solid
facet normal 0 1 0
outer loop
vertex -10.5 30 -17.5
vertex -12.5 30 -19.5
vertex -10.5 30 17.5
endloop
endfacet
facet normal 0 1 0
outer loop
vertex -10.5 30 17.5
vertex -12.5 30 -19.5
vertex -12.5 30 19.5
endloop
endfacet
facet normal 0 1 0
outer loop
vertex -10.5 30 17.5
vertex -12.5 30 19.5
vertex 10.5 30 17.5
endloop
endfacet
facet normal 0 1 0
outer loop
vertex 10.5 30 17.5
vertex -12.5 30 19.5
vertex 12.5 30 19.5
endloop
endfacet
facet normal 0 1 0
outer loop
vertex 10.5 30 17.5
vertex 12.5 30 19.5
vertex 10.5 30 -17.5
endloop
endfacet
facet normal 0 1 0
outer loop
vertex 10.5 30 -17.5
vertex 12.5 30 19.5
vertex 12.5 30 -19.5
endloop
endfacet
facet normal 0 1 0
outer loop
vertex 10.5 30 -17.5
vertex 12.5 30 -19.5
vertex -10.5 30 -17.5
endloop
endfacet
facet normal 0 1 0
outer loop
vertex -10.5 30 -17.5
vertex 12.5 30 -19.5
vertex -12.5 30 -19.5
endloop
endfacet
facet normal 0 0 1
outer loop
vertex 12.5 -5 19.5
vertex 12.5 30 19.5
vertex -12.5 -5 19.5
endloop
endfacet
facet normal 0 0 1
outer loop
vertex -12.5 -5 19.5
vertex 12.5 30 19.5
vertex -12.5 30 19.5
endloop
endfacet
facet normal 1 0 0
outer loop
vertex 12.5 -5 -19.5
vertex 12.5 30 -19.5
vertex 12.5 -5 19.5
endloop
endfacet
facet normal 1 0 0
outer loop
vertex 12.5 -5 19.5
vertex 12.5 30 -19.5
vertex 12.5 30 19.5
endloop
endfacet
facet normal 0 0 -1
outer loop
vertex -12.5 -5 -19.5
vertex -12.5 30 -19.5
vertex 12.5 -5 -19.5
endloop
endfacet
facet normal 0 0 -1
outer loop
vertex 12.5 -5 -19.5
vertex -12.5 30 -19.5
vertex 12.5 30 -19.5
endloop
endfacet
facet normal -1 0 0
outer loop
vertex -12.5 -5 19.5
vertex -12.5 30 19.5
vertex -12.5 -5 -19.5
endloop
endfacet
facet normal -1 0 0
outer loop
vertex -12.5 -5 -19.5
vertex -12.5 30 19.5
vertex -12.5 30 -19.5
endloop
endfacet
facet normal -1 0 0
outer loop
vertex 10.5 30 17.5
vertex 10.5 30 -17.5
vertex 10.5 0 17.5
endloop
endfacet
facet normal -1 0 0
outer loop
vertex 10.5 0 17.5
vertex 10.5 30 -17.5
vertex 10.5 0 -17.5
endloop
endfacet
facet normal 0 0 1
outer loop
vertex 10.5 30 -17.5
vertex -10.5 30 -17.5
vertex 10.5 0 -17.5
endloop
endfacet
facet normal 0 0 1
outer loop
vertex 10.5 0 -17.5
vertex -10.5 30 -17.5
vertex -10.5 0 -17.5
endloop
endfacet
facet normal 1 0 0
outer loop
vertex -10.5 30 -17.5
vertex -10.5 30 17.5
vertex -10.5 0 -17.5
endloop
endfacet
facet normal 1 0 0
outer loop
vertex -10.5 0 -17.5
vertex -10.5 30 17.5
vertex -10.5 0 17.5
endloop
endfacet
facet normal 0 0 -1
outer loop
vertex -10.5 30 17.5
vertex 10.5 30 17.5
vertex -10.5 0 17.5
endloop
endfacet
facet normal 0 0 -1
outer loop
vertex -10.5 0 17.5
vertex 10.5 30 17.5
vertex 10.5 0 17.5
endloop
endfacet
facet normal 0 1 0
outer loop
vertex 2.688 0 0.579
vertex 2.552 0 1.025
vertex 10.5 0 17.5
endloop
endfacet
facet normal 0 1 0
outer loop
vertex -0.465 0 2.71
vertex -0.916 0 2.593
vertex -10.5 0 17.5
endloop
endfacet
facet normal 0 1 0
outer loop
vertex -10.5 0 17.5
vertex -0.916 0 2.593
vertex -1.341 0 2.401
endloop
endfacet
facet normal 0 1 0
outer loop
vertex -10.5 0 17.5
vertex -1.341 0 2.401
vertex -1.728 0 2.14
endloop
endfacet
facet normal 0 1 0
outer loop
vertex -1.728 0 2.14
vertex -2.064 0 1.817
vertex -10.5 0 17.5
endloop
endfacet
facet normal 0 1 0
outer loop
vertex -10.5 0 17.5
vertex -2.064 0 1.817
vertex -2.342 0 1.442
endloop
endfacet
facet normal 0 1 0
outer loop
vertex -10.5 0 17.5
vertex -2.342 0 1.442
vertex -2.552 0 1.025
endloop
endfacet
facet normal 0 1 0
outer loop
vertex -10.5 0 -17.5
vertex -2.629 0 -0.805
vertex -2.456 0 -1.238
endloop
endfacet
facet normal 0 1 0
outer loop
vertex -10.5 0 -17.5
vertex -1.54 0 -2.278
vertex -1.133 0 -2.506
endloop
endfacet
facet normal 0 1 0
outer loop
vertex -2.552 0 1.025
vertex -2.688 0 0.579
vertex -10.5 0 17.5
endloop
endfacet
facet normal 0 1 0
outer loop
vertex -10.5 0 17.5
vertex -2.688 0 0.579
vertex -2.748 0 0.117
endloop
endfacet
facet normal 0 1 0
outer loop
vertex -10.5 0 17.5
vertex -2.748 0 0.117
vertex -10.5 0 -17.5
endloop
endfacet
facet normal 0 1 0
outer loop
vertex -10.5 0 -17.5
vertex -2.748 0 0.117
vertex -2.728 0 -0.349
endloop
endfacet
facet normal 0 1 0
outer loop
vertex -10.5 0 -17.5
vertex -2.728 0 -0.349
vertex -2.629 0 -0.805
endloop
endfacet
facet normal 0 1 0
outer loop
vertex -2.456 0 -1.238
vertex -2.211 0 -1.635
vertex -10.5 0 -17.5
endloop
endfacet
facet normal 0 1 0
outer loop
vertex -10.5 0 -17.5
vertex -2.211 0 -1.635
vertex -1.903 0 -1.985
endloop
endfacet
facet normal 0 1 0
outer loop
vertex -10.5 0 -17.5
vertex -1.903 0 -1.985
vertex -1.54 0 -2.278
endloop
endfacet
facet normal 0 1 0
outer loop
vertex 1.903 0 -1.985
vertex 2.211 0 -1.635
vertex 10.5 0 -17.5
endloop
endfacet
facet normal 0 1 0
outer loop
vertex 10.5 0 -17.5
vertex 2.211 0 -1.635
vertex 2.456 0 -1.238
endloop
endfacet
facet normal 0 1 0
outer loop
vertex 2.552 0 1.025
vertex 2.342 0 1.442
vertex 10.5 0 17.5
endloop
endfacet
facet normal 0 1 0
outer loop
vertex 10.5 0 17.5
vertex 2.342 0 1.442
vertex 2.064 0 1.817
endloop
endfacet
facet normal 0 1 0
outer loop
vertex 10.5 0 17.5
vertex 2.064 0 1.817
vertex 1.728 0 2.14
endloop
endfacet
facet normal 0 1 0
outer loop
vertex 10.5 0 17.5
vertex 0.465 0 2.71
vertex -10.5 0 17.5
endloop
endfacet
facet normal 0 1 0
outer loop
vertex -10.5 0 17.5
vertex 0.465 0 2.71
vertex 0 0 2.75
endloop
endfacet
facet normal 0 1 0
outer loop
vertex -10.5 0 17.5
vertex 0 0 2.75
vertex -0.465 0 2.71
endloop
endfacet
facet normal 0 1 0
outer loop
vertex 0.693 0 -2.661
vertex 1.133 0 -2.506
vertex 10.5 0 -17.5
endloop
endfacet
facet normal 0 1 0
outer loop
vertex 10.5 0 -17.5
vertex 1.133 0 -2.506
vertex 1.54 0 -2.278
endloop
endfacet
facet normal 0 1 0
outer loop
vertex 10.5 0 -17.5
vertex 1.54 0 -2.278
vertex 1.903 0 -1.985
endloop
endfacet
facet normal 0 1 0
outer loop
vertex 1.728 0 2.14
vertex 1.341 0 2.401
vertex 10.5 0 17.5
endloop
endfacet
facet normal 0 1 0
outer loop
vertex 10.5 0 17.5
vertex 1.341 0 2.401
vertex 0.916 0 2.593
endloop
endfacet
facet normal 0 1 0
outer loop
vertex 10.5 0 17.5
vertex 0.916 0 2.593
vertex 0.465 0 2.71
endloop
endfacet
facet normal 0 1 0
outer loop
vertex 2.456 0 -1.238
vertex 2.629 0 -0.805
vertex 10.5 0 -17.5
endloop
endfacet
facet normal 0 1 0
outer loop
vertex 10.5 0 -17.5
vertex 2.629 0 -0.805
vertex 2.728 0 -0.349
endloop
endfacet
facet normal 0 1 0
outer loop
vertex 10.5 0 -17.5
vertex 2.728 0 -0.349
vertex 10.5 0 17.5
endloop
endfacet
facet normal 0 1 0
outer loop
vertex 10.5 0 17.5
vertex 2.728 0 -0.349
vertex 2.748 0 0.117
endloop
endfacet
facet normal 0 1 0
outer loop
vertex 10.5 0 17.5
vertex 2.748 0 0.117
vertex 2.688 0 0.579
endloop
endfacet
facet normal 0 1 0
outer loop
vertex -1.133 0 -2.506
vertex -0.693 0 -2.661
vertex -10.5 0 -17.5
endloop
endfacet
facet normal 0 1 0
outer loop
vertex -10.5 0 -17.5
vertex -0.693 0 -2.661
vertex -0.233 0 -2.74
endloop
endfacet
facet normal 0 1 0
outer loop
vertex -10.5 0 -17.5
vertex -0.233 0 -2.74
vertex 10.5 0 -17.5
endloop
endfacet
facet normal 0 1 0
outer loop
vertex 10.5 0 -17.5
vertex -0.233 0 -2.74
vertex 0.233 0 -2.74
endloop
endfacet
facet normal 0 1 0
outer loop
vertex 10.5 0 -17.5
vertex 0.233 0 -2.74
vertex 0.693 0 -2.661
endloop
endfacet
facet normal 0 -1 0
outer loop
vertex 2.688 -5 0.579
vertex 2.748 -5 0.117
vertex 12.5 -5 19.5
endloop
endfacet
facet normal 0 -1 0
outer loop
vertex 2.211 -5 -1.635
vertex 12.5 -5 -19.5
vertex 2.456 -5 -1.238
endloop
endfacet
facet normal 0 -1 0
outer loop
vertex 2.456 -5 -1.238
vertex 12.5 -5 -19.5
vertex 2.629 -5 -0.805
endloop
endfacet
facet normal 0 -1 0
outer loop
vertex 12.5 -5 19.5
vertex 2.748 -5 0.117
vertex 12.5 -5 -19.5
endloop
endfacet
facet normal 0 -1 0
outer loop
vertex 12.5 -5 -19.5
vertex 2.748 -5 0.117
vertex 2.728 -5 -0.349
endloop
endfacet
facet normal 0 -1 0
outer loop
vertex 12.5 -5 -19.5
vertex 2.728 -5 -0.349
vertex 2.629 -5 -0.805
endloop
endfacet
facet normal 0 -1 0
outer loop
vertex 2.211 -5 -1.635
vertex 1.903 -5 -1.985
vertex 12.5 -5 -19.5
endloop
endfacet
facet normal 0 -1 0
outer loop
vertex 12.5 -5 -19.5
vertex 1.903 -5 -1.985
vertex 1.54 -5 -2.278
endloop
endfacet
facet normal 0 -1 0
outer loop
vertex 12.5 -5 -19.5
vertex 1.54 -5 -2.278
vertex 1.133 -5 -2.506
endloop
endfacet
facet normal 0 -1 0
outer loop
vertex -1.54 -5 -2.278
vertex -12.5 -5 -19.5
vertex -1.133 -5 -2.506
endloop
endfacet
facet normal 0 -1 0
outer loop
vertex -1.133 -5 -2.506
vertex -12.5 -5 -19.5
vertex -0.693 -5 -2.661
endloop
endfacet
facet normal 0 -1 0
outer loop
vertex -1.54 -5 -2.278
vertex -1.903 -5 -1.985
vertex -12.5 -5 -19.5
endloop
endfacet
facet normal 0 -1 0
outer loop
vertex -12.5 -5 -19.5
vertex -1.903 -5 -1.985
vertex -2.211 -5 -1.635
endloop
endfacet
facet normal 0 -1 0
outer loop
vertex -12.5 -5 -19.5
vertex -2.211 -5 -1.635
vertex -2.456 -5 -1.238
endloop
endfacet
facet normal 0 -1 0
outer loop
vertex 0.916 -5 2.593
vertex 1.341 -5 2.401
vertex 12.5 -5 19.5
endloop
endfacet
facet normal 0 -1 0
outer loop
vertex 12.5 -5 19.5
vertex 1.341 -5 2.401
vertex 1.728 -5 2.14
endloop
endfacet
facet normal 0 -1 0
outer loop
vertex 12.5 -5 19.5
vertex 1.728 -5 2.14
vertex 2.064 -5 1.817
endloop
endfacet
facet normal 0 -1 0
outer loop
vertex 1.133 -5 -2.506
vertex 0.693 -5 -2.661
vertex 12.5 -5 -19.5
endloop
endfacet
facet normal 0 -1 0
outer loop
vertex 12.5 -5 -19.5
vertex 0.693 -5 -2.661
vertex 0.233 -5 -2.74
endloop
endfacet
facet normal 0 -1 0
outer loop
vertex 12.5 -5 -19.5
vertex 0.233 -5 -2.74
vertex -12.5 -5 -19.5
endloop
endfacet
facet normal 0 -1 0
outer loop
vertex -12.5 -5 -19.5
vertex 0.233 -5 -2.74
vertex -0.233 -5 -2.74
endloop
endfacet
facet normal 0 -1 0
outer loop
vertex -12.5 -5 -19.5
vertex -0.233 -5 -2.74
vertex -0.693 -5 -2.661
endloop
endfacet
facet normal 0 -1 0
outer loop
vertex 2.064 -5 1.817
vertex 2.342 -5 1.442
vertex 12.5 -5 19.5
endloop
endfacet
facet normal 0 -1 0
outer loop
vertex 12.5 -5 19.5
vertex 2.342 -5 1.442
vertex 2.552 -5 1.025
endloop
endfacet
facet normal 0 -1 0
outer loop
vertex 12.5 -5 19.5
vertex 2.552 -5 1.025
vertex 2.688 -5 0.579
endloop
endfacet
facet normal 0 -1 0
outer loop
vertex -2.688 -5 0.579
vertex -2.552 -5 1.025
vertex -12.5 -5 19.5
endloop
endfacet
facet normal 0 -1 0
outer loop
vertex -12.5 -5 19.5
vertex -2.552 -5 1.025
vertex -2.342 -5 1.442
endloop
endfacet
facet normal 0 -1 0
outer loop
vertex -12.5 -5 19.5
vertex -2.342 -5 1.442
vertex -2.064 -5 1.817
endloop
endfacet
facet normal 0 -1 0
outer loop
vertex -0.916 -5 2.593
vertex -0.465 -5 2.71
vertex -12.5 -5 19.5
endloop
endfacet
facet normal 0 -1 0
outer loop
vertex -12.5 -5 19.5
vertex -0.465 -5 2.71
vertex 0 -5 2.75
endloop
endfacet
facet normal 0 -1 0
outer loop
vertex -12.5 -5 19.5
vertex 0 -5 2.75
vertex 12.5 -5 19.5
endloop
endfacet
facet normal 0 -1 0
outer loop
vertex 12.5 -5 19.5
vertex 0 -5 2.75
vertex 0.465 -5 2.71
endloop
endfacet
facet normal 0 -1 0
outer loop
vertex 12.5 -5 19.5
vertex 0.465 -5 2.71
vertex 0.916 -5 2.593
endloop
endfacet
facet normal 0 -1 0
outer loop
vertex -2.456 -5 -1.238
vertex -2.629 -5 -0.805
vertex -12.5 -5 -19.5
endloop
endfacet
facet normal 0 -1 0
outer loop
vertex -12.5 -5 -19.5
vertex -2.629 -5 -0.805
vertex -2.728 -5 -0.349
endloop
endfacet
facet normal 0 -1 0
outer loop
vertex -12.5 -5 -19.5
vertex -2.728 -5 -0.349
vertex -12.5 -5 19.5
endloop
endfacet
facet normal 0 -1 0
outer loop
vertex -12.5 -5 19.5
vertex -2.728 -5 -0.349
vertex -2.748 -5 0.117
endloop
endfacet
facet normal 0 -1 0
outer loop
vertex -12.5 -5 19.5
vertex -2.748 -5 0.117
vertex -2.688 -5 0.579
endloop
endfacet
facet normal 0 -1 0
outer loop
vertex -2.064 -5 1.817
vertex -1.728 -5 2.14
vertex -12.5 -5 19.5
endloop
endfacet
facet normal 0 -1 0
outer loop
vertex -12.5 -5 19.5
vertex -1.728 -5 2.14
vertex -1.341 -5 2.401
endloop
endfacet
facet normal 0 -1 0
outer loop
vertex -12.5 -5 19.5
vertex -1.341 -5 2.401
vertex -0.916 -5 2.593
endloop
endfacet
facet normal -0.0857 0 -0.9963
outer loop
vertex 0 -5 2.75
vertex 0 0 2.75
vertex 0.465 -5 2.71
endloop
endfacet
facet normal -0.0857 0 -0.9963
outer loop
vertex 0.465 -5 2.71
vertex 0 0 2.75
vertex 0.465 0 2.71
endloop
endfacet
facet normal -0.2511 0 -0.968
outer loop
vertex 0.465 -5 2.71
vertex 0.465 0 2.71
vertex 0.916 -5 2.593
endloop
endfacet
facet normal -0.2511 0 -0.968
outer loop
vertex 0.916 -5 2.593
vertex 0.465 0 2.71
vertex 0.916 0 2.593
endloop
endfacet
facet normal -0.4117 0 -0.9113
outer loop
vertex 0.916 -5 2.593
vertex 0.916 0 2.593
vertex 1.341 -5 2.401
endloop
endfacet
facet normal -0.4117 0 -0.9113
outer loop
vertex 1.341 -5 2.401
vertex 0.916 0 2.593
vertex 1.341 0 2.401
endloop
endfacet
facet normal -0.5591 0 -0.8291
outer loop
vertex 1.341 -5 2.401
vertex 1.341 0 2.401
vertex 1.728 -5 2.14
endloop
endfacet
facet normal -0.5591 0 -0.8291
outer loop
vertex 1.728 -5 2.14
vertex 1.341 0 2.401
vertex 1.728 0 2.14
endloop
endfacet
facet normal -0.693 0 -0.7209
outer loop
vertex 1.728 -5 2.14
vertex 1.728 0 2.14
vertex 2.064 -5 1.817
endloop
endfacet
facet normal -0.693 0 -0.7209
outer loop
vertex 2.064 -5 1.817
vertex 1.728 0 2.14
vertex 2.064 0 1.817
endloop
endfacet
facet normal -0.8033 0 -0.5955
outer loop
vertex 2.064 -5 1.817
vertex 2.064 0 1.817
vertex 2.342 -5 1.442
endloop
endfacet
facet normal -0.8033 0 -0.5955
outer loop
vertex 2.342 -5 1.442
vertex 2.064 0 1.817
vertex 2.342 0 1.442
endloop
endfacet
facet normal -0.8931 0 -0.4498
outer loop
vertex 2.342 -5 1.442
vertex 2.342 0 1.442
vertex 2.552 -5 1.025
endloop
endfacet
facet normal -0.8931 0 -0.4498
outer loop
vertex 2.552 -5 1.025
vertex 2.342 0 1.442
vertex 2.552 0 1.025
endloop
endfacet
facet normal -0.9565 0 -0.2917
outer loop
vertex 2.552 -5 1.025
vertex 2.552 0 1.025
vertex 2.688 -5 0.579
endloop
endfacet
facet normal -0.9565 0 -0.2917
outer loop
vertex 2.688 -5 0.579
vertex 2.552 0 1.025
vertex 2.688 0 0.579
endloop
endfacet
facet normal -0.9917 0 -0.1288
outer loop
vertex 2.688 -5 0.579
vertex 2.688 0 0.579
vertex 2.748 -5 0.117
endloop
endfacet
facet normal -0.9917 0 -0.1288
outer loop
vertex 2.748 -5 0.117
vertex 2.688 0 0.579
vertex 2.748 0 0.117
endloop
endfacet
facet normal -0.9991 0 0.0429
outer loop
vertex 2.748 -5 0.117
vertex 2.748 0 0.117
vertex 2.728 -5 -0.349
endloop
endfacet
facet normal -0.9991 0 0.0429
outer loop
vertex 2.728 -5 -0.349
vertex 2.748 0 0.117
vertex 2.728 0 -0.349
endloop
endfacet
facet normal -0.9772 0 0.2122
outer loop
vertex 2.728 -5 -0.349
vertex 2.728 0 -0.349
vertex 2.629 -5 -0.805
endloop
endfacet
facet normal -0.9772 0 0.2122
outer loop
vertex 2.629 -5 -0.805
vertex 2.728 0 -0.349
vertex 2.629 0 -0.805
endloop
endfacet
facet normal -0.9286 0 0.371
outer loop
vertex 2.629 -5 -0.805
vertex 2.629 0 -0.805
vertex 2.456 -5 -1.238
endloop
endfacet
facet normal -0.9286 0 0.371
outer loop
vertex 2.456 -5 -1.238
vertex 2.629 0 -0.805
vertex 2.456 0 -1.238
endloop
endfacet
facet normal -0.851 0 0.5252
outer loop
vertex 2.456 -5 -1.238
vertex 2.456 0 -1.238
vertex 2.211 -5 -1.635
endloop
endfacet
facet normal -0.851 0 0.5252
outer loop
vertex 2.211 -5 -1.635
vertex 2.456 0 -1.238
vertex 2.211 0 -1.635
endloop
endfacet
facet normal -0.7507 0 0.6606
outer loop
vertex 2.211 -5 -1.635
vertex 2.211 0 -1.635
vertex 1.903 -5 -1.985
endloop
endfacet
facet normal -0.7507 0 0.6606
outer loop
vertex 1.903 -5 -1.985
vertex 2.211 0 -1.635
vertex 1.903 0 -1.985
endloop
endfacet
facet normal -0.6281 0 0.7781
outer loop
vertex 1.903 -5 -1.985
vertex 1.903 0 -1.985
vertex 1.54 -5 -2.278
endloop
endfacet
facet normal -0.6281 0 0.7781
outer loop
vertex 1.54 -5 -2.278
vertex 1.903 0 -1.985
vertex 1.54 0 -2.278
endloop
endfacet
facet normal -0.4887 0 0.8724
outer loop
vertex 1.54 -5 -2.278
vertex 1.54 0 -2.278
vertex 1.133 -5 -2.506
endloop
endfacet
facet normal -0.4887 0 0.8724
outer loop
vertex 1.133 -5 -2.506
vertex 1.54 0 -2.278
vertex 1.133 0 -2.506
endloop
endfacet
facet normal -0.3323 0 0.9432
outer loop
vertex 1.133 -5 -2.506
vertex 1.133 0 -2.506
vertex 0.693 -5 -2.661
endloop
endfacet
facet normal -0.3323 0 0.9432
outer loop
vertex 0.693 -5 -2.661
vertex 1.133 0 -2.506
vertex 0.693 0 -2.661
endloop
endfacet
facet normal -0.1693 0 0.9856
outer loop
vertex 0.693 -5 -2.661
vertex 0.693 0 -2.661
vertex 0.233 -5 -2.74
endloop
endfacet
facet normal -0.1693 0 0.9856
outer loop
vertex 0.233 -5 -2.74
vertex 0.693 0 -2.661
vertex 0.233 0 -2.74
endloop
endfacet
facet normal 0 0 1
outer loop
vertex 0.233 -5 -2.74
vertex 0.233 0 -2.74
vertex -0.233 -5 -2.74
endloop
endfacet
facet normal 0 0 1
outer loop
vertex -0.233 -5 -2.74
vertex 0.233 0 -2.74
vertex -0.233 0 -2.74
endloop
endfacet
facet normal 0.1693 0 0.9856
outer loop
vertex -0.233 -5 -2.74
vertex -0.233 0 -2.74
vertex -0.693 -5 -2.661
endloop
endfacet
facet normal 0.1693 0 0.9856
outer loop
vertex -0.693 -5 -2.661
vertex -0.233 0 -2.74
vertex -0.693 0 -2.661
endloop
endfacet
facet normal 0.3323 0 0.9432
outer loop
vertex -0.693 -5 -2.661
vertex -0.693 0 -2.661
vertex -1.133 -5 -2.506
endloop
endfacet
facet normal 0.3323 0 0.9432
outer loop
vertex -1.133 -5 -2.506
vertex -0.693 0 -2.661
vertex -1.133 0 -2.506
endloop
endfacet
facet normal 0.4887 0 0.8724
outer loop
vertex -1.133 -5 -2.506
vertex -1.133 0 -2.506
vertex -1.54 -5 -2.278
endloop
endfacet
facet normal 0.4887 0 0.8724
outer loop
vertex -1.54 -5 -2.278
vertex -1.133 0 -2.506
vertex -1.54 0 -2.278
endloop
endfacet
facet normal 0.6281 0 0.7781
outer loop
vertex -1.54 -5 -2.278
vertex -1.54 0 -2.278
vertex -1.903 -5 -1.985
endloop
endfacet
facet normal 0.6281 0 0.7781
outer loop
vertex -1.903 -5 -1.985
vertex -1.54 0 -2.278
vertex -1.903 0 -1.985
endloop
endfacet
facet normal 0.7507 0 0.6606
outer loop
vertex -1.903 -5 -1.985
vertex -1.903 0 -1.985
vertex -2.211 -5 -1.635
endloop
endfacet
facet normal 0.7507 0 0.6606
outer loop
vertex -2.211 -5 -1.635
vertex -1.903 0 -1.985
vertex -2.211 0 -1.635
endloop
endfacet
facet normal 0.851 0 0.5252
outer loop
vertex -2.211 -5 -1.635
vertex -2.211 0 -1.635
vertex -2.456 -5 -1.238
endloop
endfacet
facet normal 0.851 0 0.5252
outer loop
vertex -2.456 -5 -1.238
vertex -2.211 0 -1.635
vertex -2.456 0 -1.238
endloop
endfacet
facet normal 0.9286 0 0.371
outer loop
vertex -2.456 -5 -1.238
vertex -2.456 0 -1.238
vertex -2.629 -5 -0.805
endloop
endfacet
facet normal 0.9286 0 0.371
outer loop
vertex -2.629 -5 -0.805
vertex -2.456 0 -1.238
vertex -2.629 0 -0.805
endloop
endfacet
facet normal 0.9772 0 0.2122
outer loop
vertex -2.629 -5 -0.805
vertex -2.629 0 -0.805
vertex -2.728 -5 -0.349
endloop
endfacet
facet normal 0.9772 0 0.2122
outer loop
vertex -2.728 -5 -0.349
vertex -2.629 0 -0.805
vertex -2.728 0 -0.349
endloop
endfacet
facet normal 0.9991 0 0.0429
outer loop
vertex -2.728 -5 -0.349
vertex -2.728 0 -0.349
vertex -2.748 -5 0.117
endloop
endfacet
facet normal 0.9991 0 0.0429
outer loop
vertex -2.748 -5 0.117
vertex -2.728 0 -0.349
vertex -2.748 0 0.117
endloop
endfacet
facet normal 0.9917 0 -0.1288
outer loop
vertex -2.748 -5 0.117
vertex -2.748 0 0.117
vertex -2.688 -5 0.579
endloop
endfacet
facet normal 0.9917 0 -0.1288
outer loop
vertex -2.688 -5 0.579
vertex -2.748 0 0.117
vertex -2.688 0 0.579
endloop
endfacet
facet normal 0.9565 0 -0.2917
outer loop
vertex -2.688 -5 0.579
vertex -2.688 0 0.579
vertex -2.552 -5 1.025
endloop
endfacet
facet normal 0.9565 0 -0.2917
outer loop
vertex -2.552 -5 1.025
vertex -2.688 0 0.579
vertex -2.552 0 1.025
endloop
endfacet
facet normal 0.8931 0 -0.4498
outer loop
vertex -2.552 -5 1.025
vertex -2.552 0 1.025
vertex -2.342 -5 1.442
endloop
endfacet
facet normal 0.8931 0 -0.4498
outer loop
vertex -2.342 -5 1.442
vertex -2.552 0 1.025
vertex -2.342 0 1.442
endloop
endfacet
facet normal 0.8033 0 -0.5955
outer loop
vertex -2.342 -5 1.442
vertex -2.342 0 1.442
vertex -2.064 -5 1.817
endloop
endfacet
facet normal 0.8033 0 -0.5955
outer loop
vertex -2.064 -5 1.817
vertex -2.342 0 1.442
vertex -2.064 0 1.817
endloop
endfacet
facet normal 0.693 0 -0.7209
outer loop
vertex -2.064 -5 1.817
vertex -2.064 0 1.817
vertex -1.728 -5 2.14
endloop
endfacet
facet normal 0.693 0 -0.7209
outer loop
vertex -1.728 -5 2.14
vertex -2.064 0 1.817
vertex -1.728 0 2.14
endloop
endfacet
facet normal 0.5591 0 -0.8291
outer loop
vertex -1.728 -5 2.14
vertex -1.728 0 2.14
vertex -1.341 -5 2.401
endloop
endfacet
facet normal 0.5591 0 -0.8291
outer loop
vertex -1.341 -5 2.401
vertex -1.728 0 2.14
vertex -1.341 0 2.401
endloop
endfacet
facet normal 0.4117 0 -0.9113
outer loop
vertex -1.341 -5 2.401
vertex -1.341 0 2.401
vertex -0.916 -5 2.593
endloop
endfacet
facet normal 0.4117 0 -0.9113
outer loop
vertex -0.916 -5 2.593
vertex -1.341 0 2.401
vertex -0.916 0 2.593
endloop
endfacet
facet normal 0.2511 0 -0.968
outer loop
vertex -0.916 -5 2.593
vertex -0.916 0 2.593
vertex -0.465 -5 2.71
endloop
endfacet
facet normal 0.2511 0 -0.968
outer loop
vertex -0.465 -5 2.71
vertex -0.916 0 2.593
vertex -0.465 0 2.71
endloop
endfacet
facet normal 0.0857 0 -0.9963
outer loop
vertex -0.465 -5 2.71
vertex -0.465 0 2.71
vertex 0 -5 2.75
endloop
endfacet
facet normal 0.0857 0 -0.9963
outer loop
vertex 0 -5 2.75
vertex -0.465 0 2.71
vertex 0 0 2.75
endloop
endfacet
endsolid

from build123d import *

# Parameters (mm, degrees)
SKETCH1_W               = 25
SKETCH1_H               = 39
SKETCH1_W_2             = 21
SKETCH1_H_2             = 35
BOSS_EXTRUDE1_DEPTH     = 30
SKETCH1_2_W             = 25
SKETCH1_2_H             = 39
BOSS_EXTRUDE2_DEPTH     = 5
CUT_EXTRUDE1_DEPTH      = 38.901187316
CUT_EXTRUDE1_DEPTH_BACK = 38.901187316
SKETCH4_R               = 2.75


with BuildPart() as part:
    # Sketch1 → Boss-Extrude1 (new body)
    with BuildSketch(Plane(origin=(0, 0, 0), x_dir=(1, 0, 0), z_dir=(0, 1, 0))):
        Rectangle(SKETCH1_W, SKETCH1_H)
        Rectangle(SKETCH1_W_2, SKETCH1_H_2, mode=Mode.SUBTRACT)
    extrude(amount=BOSS_EXTRUDE1_DEPTH)

    # Sketch1<2> → Boss-Extrude2 (add)
    with BuildSketch(Plane(origin=(0, 0, 0), x_dir=(1, 0, 0), z_dir=(0, 1, 0))):
        Rectangle(SKETCH1_2_W, SKETCH1_2_H)
    extrude(amount=-BOSS_EXTRUDE2_DEPTH)

    # Sketch4 → Cut-Extrude1 (cut, two sides: drawn at the far end of the back side and taken through both)
    with BuildSketch(Plane(origin=(0, 0, 0), x_dir=(1, 0, 0), z_dir=(0, 1, 0)).offset(-CUT_EXTRUDE1_DEPTH_BACK)):
        Circle(SKETCH4_R)
    extrude(amount=CUT_EXTRUDE1_DEPTH + CUT_EXTRUDE1_DEPTH_BACK, mode=Mode.SUBTRACT)


solid = part.part
